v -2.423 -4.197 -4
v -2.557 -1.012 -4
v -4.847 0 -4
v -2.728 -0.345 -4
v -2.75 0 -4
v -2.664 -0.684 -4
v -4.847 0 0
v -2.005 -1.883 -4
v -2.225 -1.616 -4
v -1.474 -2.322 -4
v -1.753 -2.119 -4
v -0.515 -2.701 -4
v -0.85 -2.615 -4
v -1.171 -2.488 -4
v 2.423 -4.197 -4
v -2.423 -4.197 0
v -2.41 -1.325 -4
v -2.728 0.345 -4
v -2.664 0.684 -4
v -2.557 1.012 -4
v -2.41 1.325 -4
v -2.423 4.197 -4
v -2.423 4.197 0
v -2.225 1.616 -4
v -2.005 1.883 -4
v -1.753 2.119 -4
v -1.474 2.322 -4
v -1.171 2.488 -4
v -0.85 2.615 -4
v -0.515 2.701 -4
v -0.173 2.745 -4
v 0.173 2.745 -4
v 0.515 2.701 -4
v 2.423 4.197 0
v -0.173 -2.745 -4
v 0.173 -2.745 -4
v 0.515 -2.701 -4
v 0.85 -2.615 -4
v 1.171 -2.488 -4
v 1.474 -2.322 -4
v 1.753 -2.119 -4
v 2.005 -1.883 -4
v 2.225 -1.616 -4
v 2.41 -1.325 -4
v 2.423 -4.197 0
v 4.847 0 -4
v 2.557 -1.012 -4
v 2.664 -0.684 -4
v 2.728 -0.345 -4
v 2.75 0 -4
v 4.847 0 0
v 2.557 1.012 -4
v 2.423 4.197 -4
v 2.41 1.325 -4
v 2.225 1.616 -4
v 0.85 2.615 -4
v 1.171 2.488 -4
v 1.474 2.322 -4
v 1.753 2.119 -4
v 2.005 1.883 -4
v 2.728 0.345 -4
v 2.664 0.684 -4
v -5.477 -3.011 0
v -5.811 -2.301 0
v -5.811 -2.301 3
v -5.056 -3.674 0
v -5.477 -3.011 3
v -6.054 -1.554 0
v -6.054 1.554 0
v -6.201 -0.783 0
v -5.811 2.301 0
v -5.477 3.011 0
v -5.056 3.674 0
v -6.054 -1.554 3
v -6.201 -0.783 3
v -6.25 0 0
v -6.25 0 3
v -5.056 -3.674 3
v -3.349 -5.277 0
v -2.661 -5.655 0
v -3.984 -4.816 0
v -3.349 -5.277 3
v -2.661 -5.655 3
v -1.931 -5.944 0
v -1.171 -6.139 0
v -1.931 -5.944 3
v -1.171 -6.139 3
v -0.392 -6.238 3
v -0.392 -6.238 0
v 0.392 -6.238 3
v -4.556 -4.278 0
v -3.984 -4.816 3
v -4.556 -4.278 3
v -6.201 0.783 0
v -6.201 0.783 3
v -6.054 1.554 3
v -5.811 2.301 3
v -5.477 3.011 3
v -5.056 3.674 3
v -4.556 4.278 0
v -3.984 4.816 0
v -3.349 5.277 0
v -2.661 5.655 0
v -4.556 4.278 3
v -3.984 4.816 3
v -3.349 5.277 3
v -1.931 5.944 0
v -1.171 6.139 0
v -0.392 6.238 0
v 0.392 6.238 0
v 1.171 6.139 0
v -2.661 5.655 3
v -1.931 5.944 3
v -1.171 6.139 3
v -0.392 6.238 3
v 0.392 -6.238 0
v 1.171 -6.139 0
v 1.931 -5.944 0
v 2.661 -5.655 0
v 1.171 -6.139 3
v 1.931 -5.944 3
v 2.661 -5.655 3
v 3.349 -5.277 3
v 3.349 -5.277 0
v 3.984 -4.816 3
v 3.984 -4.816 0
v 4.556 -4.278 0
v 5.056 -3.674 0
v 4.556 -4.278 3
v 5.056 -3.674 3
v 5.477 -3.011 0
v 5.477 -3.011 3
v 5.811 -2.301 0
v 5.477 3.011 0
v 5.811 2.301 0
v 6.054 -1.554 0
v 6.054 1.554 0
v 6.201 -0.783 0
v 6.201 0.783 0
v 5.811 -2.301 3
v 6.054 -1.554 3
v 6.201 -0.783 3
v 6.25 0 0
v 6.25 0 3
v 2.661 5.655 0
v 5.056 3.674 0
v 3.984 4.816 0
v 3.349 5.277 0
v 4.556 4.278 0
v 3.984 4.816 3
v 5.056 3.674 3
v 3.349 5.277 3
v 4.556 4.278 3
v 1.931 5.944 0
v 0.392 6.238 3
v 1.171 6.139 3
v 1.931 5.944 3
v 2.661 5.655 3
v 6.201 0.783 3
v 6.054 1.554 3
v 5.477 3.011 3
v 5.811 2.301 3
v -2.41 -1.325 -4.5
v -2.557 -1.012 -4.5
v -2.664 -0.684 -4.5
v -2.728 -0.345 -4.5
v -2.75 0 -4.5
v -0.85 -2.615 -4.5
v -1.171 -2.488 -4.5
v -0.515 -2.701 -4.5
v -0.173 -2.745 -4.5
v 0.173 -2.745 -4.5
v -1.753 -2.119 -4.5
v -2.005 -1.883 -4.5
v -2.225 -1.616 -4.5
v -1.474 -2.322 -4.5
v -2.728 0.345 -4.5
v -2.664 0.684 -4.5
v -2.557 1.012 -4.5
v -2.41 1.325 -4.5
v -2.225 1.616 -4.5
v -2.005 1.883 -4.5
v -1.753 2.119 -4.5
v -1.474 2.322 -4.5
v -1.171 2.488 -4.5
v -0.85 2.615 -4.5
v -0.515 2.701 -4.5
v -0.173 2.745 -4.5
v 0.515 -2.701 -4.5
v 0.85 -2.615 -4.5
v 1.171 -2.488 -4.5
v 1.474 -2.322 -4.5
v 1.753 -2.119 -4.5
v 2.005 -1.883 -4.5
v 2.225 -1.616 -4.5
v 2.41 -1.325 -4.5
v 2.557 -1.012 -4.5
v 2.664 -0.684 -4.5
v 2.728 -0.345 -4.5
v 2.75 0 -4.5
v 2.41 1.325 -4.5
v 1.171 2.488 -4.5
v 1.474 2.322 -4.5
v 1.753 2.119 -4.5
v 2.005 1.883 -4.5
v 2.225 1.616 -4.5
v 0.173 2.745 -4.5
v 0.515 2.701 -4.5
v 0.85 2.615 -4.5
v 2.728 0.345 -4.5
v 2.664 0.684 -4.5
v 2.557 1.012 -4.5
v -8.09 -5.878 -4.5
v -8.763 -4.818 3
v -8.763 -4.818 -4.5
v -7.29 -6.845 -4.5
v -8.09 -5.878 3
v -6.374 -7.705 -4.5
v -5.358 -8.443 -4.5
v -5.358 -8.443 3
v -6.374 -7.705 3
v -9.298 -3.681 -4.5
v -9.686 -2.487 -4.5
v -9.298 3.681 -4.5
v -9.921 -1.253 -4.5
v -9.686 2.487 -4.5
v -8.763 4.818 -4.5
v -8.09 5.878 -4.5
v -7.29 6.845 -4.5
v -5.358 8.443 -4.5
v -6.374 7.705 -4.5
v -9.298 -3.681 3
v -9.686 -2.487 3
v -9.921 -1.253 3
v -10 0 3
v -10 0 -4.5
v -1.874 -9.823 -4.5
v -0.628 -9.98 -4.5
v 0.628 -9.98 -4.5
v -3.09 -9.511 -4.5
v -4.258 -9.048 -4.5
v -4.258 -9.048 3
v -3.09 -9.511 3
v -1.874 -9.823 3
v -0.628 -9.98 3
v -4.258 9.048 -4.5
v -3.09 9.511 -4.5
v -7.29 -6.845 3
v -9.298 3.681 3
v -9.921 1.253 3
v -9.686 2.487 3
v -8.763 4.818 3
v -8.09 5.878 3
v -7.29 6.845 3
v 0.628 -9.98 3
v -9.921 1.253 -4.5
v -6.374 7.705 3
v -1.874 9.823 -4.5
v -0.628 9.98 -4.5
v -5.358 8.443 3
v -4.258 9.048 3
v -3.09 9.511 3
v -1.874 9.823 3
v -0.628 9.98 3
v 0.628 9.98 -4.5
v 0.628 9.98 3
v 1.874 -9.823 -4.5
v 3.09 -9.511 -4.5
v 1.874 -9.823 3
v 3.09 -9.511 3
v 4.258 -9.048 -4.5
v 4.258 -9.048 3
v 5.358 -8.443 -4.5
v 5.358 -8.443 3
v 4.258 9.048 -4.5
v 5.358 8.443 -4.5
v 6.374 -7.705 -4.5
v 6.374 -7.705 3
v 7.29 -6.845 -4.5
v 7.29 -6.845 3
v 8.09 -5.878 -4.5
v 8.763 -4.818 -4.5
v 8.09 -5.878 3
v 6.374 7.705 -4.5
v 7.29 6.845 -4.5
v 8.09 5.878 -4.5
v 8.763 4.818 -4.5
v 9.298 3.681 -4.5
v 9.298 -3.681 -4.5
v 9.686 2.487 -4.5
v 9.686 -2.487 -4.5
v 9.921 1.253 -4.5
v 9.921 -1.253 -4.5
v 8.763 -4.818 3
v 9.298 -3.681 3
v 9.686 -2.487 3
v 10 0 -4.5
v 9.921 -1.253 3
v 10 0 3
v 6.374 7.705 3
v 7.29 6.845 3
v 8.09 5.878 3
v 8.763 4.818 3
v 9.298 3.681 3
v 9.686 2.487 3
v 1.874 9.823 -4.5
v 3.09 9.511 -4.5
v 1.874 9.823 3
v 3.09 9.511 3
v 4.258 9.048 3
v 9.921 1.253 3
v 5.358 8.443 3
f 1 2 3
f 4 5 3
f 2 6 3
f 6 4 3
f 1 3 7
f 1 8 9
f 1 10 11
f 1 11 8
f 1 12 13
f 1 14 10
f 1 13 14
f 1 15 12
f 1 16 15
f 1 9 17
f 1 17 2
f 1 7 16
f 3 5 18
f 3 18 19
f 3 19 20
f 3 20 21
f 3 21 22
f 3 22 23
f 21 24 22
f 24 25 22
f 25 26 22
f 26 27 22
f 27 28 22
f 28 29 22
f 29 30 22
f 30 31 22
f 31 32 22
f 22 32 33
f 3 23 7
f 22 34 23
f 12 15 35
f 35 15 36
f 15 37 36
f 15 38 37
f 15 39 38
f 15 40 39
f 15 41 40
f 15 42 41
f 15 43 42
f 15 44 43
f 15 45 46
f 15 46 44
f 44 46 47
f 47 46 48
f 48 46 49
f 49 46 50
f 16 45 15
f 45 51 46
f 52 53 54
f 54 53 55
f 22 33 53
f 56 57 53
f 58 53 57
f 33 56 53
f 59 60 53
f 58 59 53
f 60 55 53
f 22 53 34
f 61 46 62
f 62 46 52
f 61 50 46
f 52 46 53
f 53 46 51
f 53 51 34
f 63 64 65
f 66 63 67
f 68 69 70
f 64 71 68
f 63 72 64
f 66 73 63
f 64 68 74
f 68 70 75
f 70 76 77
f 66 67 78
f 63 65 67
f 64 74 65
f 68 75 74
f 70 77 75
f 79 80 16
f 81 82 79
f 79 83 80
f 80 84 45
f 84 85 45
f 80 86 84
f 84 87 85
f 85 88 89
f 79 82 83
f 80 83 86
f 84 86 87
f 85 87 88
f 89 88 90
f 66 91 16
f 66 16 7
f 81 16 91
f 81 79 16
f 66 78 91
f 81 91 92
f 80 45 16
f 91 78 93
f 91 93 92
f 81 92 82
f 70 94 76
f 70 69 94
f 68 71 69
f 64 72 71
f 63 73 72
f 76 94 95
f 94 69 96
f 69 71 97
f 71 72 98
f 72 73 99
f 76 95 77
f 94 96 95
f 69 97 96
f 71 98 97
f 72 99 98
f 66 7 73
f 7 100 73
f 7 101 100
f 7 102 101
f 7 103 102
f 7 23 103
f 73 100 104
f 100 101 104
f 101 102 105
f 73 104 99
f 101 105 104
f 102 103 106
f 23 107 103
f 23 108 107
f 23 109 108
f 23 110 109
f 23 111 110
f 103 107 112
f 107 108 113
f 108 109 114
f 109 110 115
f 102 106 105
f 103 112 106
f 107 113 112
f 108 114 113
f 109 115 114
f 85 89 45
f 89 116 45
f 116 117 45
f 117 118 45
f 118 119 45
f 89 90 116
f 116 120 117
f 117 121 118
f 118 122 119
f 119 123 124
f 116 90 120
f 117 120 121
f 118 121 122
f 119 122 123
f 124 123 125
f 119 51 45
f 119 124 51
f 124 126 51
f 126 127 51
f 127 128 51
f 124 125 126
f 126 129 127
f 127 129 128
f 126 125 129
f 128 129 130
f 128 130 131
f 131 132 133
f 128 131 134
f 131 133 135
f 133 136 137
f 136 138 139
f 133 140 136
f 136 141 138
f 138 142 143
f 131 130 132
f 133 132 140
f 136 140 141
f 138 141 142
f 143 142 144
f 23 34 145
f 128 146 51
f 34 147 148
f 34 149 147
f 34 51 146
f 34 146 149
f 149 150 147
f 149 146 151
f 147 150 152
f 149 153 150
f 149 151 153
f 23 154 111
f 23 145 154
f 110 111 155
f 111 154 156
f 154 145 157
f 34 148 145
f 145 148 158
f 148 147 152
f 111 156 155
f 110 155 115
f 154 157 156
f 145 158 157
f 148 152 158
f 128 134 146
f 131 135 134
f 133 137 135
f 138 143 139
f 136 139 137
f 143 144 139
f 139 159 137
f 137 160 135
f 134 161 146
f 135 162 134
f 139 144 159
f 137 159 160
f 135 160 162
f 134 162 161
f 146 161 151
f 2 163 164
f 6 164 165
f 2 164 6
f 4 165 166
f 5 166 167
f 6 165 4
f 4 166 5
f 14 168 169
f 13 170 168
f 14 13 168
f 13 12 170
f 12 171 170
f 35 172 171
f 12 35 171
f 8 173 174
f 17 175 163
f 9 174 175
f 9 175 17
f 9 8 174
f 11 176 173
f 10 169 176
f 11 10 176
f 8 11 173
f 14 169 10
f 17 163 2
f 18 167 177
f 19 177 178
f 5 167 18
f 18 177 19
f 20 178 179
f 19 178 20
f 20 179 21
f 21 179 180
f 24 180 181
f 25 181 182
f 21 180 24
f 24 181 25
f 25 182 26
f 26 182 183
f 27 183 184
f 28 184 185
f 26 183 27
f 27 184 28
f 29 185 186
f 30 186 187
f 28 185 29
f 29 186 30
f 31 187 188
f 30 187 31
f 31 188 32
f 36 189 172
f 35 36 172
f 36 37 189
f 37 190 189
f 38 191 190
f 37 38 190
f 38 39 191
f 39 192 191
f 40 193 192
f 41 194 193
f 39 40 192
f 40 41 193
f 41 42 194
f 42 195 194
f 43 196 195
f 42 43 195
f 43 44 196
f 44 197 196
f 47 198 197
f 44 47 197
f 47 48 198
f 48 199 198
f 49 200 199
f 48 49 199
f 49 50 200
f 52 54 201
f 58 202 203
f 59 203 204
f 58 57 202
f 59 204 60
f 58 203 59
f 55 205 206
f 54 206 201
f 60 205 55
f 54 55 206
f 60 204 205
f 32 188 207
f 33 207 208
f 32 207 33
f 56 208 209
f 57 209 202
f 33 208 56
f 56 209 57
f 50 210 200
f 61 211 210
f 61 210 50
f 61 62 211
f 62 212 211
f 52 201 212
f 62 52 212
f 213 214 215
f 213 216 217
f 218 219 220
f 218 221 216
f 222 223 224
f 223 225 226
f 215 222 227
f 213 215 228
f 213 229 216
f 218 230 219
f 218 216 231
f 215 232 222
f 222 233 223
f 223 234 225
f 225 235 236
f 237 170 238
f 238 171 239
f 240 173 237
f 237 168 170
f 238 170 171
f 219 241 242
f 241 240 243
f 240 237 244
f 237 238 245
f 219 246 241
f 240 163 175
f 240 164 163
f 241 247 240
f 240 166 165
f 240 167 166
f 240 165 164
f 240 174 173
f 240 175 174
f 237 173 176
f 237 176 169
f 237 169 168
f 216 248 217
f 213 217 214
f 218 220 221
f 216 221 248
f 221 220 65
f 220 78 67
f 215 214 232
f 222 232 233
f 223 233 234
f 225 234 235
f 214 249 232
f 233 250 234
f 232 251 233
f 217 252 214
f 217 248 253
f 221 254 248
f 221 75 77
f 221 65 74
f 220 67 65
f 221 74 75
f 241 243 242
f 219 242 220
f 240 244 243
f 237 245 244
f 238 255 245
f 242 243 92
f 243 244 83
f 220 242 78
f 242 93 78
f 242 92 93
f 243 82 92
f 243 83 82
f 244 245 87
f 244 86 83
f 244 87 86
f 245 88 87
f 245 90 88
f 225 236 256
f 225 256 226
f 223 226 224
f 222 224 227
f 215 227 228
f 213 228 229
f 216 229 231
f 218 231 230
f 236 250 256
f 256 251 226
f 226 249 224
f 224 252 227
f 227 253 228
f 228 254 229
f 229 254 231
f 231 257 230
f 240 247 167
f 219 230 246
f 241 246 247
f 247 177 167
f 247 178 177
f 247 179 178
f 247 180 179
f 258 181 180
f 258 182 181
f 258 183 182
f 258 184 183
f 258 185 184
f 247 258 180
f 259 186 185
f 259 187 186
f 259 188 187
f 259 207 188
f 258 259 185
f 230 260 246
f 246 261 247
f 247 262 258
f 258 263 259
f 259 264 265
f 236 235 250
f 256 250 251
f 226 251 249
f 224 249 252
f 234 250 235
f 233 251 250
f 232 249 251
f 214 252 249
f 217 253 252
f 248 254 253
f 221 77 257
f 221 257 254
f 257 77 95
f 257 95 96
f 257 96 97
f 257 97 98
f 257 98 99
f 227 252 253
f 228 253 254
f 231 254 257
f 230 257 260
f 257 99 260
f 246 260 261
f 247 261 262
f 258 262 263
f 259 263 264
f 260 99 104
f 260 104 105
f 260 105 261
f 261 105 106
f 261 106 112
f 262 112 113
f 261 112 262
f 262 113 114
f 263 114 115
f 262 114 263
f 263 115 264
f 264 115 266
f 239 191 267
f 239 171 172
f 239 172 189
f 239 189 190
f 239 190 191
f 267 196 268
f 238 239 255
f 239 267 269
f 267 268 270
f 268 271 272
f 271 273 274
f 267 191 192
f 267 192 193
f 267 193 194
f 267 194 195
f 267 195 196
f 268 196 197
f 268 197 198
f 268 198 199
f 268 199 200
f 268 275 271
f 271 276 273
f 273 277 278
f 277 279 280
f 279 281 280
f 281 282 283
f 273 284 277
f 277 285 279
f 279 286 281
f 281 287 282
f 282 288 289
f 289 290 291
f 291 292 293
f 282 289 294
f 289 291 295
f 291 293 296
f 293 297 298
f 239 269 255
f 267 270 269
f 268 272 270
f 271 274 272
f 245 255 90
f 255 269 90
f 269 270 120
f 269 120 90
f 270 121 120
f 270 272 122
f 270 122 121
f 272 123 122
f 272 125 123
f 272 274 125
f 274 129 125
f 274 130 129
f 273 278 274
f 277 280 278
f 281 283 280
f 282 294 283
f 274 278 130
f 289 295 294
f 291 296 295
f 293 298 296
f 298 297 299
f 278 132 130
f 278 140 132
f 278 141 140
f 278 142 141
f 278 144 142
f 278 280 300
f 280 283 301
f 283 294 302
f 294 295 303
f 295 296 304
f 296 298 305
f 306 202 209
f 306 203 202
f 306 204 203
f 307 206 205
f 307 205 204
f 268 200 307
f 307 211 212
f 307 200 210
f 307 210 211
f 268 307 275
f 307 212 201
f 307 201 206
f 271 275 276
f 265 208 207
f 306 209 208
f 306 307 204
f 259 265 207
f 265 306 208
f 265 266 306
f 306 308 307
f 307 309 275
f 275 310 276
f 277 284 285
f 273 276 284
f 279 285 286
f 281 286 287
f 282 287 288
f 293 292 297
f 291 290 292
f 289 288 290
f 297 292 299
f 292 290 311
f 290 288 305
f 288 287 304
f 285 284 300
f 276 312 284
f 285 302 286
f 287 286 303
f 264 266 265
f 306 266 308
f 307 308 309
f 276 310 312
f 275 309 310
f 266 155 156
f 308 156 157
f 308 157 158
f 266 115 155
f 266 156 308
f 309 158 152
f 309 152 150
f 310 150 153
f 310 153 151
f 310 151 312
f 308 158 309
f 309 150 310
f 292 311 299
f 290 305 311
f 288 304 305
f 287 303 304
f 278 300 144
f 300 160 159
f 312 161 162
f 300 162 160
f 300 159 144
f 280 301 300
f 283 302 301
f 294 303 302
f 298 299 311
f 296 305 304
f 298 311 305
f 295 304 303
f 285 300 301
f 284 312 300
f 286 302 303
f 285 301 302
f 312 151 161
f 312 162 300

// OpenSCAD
$fn = 50;

difference() {
	union() {
		translate(v = [0, 0, -4.5]) {
			cylinder(h = 7.5, r = 10.0);
		}
	}
	union() {
		translate(v = [0, 0, 0]) {
			rotate(a = [0, 0, 0]) {
				difference() {
					union() {
						translate(v = [0, 0, -4]) {
							linear_extrude(height = 4) {
								polygon(points = [[4.8468, 0.0], [2.4234000000000004, 4.197451927062417], [-2.423399999999999, 4.197451927062417], [-4.8468, 5.935618106107392e-16], [-2.423400000000002, -4.197451927062416], [2.423399999999997, -4.197451927062419]]);
							}
						}
					}
					union();
				}
			}
		}
		#cylinder(h = 3, r = 6.25);
		#translate(v = [0, 0, -100.0]) {
			cylinder(h = 200, r = 2.75);
		}
	}
}
